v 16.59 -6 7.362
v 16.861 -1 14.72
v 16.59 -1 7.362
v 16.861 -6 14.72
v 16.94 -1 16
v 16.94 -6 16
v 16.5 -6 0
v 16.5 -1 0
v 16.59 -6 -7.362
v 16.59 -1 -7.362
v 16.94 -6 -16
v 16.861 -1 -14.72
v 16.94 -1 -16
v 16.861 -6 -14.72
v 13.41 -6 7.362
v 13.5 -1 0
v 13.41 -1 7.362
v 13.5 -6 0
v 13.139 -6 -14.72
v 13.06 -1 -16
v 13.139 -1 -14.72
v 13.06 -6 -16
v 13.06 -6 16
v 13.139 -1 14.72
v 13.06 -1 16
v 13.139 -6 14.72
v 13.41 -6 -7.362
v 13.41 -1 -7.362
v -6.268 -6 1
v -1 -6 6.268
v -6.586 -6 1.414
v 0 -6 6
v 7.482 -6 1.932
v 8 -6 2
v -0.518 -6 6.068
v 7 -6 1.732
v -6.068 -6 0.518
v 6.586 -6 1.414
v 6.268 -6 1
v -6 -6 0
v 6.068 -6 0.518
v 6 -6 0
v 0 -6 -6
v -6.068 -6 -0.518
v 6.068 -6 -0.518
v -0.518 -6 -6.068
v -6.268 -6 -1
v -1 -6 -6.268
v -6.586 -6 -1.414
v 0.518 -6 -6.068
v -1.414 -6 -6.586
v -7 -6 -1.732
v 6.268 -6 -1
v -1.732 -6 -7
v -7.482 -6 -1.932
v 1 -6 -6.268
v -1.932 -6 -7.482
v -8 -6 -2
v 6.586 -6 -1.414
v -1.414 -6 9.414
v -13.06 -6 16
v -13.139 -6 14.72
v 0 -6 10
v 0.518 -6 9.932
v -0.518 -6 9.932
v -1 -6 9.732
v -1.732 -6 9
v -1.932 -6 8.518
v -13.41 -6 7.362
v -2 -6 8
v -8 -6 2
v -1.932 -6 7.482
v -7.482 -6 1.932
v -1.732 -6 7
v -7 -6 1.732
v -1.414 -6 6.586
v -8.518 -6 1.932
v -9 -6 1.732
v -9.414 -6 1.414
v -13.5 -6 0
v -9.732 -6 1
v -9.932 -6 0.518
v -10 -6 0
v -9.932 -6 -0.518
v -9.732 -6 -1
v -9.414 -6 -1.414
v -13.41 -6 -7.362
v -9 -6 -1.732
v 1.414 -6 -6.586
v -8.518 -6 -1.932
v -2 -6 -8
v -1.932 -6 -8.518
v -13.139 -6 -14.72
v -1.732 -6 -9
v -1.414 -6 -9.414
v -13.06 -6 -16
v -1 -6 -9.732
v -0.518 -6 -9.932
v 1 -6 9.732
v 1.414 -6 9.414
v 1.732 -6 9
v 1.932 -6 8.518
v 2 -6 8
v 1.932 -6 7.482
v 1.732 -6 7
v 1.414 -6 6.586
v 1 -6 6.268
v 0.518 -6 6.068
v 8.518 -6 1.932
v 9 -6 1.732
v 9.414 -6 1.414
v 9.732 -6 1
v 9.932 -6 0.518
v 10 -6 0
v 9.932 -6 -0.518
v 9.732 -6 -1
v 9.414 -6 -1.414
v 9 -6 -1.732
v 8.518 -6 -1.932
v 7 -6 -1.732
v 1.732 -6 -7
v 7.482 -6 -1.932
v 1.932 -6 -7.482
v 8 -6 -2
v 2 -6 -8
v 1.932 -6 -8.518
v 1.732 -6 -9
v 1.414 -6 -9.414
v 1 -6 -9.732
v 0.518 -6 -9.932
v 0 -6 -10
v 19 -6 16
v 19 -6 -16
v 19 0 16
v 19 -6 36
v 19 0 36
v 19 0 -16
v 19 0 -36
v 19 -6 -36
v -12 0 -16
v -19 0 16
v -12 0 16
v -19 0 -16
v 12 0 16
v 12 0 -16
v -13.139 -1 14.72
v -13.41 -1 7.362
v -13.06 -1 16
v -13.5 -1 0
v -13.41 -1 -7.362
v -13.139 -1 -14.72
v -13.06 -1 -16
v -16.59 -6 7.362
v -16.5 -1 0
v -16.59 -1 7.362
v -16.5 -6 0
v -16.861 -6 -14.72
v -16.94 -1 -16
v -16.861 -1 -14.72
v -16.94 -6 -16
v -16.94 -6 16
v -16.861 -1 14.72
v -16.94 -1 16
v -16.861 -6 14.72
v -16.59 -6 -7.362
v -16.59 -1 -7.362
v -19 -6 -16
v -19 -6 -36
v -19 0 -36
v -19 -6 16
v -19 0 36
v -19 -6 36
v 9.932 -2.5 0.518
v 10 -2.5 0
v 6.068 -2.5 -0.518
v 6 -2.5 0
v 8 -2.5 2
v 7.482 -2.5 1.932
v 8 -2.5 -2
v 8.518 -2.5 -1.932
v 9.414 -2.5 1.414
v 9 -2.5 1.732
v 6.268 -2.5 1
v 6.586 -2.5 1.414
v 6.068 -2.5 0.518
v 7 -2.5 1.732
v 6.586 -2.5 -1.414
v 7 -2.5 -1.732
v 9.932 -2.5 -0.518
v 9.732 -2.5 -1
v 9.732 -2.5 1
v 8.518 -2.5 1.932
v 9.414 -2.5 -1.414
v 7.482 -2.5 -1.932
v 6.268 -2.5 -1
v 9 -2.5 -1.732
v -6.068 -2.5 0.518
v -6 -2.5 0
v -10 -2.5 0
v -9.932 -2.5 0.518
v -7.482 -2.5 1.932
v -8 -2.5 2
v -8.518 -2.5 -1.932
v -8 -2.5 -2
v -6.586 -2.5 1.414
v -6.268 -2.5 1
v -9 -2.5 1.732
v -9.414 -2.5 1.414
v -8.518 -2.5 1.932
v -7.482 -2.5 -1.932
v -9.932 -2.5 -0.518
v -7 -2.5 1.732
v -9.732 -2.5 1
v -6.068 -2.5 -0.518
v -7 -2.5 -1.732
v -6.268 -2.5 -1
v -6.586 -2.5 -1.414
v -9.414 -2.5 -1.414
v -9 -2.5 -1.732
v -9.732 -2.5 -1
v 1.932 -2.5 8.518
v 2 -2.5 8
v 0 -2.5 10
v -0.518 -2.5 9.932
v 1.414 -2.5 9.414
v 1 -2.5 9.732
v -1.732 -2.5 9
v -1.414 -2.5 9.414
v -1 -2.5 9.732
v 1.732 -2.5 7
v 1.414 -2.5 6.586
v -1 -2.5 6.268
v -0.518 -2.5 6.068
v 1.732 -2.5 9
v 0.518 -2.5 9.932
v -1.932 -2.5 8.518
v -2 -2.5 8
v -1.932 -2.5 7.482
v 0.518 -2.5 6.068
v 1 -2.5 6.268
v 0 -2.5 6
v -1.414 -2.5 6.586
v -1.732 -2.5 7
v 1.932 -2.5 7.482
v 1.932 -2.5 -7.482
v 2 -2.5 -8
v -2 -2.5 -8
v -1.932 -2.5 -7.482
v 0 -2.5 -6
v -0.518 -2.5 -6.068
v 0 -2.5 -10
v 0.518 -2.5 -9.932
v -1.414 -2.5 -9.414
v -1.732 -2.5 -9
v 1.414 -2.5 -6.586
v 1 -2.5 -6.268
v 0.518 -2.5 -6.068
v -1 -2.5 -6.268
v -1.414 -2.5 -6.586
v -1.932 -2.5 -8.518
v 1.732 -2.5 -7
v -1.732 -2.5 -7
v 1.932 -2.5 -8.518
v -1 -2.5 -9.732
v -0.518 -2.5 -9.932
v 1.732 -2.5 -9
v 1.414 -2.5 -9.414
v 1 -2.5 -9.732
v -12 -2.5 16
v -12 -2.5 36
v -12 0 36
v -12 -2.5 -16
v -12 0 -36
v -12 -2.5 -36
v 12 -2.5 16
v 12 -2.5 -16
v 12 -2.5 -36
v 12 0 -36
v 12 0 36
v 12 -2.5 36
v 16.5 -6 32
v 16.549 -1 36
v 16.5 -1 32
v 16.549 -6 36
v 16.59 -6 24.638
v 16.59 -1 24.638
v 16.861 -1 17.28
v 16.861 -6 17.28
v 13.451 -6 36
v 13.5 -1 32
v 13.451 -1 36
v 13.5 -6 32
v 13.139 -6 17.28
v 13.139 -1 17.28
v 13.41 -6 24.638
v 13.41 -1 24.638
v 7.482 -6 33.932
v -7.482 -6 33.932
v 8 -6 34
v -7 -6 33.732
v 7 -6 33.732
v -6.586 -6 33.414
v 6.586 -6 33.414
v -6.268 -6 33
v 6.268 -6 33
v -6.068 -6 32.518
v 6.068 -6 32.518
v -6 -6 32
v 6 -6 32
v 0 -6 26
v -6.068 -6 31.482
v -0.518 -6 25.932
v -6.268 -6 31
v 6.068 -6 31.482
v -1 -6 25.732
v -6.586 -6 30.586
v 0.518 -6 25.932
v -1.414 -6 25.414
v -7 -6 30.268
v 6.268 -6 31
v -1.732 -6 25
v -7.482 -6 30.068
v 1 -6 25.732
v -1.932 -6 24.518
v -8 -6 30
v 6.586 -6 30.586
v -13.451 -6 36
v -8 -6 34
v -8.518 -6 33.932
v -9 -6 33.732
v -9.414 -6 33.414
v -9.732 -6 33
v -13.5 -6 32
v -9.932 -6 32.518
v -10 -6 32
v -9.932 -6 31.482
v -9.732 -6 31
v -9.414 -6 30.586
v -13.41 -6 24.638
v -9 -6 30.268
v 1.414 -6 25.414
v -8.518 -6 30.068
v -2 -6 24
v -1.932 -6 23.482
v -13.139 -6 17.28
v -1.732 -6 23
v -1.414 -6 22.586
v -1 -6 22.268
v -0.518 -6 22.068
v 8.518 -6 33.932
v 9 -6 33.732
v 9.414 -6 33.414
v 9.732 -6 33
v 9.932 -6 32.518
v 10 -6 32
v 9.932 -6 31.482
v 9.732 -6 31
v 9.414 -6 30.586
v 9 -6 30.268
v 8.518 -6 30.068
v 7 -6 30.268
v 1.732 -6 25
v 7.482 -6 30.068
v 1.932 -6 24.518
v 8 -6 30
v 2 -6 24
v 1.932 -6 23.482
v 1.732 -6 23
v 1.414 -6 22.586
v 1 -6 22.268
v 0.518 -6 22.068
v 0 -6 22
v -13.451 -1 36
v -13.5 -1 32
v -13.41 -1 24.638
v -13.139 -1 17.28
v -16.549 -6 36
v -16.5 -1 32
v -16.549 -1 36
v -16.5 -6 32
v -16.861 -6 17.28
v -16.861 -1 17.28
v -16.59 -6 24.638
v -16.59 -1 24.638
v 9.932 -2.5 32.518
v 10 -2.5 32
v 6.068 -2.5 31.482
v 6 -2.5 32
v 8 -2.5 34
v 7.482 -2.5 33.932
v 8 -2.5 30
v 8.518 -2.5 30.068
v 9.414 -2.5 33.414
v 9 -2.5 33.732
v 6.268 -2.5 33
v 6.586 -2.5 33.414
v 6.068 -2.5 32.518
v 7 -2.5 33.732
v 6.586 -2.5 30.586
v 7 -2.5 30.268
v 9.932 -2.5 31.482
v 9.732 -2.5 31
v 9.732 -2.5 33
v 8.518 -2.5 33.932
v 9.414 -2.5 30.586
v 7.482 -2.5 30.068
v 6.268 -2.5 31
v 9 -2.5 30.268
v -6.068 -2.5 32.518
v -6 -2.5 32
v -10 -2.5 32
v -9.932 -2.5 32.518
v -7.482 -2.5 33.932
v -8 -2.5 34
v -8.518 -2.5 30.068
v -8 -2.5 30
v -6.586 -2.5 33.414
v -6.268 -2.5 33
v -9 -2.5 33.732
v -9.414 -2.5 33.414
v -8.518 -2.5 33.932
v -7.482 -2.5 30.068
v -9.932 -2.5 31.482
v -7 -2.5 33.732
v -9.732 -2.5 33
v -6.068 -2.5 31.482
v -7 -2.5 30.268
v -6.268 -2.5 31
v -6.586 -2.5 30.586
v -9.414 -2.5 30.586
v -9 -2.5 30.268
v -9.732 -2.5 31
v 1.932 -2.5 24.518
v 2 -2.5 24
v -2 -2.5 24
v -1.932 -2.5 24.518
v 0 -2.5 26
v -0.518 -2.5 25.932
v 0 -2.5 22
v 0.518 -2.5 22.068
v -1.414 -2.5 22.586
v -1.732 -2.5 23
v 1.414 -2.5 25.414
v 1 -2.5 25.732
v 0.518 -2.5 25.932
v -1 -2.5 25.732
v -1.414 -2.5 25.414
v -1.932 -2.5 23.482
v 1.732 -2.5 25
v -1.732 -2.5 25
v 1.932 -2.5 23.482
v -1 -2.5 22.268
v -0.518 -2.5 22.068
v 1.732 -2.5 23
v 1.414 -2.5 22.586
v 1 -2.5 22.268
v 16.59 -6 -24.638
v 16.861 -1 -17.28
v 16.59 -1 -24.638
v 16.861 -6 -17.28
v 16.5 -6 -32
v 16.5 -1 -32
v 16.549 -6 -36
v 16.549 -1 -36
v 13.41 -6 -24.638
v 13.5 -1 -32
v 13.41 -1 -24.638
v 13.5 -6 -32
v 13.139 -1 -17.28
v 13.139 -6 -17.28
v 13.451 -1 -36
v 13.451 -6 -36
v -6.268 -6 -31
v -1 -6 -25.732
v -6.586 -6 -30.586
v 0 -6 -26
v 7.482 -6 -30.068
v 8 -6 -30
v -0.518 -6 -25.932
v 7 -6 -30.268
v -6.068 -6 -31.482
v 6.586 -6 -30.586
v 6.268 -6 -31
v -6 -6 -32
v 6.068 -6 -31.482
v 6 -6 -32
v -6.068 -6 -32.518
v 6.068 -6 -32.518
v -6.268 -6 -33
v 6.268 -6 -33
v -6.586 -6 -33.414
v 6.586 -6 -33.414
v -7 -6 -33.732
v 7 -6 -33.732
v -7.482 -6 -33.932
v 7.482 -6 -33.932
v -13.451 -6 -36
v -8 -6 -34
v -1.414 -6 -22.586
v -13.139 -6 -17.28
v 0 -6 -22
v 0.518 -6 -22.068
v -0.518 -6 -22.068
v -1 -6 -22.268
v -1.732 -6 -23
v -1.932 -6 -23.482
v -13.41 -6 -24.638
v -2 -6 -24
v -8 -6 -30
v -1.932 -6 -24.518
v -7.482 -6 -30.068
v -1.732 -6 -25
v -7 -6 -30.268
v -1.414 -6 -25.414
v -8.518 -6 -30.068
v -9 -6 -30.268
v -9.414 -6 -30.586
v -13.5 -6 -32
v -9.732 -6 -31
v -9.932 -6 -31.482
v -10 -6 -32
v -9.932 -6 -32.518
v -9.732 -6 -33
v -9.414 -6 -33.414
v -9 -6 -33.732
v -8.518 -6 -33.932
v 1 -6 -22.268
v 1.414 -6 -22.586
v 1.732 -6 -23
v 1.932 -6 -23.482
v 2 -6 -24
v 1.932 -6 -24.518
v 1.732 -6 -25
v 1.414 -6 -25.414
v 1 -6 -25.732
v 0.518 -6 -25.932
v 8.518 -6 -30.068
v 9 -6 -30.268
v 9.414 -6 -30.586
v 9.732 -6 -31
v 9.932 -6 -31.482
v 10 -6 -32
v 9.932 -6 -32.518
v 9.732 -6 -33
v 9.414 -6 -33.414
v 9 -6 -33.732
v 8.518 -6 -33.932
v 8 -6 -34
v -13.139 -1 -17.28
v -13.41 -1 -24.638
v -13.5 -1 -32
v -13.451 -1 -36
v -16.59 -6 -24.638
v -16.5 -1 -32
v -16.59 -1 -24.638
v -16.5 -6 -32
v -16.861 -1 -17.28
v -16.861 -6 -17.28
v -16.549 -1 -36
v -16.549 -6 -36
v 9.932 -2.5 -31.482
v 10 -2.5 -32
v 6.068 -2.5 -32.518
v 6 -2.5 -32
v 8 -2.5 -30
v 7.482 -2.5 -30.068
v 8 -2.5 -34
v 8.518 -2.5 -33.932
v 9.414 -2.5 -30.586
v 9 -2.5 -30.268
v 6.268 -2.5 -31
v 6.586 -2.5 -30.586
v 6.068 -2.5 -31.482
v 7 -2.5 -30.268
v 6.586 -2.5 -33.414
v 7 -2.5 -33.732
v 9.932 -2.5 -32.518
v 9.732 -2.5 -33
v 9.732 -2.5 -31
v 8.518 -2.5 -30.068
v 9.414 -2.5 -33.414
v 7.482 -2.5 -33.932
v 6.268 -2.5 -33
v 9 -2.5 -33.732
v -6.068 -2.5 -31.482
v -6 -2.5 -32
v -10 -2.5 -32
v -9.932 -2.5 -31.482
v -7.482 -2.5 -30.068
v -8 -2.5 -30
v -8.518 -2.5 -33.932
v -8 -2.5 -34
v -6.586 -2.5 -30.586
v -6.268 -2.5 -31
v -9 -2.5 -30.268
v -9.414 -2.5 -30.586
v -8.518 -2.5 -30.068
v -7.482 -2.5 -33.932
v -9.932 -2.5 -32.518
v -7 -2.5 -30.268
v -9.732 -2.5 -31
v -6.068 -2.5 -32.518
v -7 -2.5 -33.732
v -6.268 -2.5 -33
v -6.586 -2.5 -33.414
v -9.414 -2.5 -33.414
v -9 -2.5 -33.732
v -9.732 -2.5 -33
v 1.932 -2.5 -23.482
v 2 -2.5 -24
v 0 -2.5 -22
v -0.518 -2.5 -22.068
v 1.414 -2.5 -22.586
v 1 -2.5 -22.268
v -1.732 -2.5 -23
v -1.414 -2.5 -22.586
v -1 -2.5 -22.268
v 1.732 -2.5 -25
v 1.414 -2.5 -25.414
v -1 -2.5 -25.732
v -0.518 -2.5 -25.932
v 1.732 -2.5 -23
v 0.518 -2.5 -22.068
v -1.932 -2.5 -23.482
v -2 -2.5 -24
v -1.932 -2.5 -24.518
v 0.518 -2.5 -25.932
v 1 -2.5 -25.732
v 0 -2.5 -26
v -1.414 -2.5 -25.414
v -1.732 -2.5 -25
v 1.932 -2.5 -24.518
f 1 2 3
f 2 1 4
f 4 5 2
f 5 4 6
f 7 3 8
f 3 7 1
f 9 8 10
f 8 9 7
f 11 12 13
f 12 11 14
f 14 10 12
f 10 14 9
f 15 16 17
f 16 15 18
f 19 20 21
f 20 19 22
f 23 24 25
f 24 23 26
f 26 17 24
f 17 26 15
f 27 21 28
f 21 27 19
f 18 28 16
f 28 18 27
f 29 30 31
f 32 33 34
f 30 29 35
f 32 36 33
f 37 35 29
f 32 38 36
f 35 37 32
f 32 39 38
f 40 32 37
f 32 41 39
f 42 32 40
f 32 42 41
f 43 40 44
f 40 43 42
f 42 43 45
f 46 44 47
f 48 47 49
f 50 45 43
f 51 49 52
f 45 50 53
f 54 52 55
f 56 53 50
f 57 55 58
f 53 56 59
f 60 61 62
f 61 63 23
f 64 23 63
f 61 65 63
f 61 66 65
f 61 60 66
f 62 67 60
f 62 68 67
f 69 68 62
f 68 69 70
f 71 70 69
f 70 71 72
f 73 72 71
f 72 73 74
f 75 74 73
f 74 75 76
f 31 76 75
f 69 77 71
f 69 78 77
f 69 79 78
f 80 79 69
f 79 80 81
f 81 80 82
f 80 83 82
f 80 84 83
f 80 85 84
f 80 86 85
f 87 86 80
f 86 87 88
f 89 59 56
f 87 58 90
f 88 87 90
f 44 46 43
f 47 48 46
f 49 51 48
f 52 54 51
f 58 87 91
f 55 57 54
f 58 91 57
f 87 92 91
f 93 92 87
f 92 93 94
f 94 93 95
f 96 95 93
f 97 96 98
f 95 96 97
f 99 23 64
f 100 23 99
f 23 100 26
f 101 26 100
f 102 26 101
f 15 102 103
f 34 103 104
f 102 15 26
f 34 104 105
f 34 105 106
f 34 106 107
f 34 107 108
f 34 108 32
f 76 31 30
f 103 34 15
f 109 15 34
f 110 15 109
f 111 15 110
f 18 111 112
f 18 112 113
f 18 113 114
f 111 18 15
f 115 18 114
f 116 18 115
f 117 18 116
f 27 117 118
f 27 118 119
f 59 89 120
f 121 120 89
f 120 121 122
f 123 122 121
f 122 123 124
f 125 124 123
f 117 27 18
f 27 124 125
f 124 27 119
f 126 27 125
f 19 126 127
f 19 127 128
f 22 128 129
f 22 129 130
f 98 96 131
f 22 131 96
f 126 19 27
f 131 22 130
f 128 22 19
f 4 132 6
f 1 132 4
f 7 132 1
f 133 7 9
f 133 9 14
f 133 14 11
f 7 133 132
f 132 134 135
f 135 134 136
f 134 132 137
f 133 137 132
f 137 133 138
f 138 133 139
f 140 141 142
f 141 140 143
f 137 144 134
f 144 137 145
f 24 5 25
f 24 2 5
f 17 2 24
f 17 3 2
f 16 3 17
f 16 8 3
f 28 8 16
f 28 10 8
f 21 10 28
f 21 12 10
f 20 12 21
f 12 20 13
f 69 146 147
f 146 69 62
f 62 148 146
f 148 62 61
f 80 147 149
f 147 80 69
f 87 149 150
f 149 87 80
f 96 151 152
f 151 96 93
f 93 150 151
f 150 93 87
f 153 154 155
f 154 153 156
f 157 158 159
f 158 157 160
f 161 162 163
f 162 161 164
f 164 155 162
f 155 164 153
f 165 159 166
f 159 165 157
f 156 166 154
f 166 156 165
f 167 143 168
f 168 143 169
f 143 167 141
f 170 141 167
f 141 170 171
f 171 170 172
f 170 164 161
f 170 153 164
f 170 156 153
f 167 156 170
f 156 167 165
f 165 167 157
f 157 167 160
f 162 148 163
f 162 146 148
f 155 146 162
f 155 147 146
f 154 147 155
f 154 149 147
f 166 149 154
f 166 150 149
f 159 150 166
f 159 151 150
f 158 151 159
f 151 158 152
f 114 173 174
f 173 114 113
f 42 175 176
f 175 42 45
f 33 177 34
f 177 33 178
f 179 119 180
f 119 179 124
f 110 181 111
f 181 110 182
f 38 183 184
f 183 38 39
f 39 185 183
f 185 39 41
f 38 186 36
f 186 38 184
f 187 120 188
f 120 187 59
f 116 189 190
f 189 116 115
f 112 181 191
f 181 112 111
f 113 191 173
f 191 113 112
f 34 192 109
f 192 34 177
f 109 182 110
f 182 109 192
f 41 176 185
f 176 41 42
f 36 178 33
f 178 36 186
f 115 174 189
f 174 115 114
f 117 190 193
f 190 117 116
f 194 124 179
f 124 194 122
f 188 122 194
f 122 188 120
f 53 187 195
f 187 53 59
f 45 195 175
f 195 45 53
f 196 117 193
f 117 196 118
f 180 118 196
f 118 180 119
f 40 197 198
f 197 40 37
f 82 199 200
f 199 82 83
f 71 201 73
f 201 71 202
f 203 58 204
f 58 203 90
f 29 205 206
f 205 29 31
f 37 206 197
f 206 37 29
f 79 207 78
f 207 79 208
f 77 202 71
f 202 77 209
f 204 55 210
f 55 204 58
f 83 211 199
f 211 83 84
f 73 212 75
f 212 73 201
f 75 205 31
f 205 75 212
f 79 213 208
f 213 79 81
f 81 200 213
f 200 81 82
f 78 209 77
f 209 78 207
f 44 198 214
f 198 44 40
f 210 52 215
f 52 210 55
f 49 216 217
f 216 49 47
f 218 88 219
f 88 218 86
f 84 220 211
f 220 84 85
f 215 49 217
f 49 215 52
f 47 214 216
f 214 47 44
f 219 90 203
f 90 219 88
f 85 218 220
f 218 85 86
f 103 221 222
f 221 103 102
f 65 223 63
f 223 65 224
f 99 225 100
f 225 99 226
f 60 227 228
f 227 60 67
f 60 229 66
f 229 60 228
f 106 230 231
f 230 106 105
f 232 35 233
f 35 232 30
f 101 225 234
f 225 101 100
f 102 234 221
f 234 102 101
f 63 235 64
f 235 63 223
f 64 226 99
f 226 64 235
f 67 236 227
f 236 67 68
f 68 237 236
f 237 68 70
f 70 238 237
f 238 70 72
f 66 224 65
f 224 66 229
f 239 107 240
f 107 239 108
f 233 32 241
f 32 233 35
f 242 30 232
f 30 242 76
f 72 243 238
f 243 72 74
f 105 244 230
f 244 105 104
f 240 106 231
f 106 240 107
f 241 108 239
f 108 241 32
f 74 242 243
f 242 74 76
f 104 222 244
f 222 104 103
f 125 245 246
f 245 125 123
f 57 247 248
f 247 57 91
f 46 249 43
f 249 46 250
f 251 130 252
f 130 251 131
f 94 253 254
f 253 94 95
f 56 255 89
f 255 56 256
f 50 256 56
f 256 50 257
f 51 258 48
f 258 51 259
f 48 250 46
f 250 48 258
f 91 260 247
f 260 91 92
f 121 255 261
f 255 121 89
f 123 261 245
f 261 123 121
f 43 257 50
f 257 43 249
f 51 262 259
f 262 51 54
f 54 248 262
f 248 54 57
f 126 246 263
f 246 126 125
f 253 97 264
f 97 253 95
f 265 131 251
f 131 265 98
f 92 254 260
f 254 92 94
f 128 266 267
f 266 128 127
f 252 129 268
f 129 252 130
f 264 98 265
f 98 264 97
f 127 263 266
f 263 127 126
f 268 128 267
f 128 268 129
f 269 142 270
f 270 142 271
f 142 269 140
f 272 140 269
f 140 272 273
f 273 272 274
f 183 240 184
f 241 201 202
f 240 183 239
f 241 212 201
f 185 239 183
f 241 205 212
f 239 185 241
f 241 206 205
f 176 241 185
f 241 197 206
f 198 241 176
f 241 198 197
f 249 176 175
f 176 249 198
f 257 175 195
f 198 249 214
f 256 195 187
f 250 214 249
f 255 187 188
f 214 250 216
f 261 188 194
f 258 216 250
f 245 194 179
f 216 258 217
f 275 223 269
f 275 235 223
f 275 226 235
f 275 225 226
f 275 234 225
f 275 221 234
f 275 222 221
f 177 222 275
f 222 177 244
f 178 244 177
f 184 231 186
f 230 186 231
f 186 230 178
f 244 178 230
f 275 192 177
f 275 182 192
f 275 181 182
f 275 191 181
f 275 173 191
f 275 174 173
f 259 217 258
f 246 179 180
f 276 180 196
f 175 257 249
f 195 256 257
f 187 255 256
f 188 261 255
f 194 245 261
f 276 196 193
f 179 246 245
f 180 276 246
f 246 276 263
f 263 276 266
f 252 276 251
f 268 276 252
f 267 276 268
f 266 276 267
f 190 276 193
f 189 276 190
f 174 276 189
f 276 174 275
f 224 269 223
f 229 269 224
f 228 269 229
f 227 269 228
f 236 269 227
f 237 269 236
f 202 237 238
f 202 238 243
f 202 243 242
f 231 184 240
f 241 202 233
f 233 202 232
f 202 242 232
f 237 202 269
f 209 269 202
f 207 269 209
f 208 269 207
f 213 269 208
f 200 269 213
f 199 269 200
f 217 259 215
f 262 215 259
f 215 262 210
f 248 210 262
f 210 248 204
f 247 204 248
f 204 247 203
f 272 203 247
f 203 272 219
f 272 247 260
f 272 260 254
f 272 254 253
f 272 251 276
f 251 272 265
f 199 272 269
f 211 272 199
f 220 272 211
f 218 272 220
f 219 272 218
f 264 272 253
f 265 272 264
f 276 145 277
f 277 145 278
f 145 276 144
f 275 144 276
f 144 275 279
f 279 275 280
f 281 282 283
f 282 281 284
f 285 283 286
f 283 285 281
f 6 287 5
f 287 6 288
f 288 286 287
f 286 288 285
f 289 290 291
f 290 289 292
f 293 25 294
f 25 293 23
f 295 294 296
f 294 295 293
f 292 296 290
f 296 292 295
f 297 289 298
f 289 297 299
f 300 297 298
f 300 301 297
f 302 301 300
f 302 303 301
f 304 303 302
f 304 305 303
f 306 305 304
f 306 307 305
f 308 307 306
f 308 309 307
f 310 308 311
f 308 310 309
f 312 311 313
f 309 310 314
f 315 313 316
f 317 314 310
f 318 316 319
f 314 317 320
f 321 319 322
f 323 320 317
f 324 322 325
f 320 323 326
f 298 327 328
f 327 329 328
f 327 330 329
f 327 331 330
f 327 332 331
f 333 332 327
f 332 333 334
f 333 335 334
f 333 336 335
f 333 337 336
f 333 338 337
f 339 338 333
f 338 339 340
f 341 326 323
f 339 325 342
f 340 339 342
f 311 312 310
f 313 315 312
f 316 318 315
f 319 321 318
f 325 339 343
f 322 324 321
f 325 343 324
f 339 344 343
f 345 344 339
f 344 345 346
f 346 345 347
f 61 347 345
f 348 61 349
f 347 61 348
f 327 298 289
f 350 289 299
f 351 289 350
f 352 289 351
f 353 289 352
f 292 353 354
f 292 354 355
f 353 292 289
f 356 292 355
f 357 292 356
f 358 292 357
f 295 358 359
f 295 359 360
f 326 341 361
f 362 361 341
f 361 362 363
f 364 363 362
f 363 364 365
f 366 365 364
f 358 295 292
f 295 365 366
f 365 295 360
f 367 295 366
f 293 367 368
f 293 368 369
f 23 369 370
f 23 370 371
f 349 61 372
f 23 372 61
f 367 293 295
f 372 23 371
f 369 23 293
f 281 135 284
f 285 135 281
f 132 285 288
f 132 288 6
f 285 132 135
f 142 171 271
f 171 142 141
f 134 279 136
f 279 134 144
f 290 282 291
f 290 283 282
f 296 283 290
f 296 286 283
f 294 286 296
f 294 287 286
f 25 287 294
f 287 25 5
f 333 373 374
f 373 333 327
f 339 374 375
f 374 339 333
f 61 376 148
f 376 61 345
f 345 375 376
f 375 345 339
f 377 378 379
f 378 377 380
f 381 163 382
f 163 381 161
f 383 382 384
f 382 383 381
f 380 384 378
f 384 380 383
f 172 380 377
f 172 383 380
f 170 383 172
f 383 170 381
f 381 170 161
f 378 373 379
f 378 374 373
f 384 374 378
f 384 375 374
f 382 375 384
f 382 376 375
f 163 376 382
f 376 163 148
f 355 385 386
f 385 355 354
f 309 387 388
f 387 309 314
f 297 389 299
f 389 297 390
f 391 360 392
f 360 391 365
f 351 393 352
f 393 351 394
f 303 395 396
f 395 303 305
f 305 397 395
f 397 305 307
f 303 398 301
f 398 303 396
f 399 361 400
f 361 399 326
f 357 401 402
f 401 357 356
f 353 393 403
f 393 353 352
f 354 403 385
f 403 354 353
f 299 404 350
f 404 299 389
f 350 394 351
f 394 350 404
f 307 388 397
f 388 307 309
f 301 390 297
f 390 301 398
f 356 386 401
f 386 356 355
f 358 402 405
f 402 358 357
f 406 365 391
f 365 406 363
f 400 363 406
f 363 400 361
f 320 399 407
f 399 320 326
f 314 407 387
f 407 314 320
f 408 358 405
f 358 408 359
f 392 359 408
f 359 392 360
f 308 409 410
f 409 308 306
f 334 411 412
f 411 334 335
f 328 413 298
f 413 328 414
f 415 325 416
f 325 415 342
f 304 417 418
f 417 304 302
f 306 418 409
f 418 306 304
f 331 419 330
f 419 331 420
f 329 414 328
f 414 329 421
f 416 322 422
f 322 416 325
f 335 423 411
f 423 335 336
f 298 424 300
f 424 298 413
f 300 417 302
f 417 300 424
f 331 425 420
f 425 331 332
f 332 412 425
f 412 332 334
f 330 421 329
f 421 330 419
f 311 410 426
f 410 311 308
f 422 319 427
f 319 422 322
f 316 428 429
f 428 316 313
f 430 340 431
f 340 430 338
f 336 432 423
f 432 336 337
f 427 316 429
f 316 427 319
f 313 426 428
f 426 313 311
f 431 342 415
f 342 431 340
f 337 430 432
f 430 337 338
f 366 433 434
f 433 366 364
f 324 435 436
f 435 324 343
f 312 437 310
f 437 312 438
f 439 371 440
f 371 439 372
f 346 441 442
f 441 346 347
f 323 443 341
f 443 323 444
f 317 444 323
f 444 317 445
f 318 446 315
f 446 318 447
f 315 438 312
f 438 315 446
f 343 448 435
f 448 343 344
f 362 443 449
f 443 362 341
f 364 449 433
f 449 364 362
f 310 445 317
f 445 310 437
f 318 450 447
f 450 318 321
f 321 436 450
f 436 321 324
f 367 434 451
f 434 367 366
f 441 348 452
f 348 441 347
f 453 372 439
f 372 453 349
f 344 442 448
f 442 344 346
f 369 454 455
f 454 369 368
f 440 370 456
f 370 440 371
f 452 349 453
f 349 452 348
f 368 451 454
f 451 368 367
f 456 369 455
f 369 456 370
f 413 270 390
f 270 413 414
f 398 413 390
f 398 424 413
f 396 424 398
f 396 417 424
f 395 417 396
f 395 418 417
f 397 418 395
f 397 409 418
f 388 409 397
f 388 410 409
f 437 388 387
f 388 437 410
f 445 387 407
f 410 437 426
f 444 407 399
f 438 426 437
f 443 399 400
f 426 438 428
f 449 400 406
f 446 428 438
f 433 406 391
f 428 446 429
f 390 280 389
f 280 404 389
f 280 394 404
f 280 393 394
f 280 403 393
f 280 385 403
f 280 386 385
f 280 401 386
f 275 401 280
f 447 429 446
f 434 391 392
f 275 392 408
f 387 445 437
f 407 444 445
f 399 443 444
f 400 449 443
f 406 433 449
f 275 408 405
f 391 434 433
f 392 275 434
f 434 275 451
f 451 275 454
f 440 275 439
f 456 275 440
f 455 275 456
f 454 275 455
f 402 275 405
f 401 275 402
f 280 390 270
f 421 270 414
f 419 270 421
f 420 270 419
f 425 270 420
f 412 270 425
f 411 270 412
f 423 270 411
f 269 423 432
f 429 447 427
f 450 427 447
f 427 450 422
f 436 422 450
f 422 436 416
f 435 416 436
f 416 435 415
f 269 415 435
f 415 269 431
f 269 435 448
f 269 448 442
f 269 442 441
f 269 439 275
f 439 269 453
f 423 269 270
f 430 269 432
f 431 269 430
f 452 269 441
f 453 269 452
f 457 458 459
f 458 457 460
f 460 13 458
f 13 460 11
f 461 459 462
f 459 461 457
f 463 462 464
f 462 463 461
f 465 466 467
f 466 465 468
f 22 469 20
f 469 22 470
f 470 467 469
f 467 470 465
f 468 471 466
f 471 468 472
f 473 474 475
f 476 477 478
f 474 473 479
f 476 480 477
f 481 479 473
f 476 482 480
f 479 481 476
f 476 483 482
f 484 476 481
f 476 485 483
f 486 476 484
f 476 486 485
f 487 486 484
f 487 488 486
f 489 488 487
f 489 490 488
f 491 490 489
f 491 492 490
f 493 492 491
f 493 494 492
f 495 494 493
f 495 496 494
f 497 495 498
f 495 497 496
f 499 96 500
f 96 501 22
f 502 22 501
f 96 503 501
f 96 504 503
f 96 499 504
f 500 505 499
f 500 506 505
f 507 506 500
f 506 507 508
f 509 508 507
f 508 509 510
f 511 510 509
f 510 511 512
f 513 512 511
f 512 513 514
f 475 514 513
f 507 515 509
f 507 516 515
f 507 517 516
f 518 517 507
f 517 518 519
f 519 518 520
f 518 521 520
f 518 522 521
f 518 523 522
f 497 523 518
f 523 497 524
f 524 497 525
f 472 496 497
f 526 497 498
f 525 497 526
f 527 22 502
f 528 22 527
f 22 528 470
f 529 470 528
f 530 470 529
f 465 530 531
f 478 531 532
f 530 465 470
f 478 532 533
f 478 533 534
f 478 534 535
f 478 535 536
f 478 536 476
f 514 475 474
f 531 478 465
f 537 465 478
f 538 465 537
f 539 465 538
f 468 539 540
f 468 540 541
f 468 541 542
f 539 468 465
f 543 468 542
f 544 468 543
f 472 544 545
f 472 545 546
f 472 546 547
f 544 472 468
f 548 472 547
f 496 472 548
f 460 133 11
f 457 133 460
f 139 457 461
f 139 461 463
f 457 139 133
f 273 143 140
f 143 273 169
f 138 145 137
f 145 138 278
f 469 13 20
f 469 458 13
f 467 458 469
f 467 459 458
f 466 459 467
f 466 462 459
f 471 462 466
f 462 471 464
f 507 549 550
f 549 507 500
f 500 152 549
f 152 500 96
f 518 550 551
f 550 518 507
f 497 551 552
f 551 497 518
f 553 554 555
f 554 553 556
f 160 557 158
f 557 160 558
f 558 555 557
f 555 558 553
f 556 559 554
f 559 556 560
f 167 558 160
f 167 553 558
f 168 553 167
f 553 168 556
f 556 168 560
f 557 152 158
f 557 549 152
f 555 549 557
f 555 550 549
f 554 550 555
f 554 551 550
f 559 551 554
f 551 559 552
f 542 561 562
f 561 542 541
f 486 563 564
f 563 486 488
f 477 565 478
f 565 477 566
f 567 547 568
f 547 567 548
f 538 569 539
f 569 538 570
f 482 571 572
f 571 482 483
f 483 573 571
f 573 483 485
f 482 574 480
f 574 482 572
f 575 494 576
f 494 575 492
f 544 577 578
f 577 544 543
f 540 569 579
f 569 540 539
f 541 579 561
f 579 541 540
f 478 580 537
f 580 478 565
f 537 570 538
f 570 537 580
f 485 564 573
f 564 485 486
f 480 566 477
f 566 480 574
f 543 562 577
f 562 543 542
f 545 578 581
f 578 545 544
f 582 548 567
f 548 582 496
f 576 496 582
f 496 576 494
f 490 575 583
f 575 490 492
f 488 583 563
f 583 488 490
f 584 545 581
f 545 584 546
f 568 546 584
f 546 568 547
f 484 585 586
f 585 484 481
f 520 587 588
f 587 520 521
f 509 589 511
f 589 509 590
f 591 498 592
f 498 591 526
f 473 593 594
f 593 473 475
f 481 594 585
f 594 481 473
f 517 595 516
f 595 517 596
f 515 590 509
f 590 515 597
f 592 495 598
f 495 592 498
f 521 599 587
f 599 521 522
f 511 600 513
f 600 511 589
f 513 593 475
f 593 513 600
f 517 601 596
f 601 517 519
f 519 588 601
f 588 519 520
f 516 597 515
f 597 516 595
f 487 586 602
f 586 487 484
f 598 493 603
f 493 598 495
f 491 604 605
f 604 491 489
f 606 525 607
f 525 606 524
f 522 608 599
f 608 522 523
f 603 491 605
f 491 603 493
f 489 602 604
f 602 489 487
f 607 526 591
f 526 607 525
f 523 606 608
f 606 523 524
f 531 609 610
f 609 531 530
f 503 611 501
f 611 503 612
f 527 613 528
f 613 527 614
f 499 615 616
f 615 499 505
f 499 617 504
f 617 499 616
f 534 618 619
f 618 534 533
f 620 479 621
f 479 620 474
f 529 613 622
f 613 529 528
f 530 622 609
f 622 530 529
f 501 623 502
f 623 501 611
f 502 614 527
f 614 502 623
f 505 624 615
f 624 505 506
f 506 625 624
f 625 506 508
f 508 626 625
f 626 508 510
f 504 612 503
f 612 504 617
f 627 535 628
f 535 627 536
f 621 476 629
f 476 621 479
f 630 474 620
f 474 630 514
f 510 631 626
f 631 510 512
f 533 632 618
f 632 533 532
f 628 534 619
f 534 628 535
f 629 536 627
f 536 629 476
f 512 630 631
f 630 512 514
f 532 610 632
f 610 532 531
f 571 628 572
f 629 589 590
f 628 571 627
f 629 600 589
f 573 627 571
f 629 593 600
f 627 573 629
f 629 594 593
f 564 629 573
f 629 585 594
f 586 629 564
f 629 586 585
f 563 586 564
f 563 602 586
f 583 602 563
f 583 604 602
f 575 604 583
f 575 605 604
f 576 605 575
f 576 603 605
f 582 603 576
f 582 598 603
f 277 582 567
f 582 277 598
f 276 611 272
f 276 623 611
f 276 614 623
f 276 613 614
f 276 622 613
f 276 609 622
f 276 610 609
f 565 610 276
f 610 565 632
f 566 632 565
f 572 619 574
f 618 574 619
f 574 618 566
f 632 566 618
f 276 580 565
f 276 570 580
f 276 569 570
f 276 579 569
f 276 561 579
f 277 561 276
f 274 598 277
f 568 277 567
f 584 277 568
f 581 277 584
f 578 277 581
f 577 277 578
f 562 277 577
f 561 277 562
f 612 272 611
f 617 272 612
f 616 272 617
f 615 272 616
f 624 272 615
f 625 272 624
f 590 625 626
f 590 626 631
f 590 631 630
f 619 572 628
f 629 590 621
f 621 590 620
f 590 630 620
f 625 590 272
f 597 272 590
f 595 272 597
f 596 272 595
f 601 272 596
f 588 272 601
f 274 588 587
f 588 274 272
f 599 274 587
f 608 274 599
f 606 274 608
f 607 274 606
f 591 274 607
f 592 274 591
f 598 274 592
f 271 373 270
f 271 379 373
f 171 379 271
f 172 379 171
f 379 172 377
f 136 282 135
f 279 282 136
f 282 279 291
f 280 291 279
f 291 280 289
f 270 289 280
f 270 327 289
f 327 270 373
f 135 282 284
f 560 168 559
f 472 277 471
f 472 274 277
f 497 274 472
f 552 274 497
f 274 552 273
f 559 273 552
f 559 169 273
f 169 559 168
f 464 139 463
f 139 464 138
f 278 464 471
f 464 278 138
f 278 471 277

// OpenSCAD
sliderWidth = 30;
sliderHeight = 32;
sliderDepth = 6;

tabWidth = 8;
tabGapWidth = 3;
tabRadius = 300.0;
tabDepth = 5;

lowerWidth = 24;
lowerDepth = 2.5;

upperWidth=24;
upperDepth=1;


holeOffset = 8;
holeRadius = 2;

bigHoleDepth = 1.5;
bigHoleRadius = 4.75;

tabFacets = 256;
holeFacets = 24;
blockFacets = 32;

//BigHoles();
intersection() {
    union() {
    Slider();
    translate([0,0,32])
        Slider();
    translate([0,0,-32])
        Slider();
    }
    cube([100,100,72],center=true);
}

//translate([0,sliderHeight*1.25,0])
//    Slider();


module Slider()
{
    rotate([90,0,0])
    difference()
    {
        union() {
            translate([sliderWidth/2,0,0])
                Tab();
            translate([-sliderWidth/2,0,0])
                Tab();
            translate([0,0,sliderDepth/2])
                cube([sliderWidth-tabWidth,sliderHeight,sliderDepth],
                     center=true);

        }
        Holes();

        
  /*      translate([0,0,sliderDepth])
            RoundedBlock(upperWidth, 2*sliderHeight, 2*upperDepth);*/
        translate([0,0,0])
            RoundedBlock(lowerWidth, 2*sliderHeight, 2*lowerDepth);
    }
}

module Tab() {
    union() {
        translate([0,0,sliderDepth/2])
            intersection() {
                cube([tabWidth,sliderHeight,sliderDepth],
                     center = true);
                union() {
                    translate([tabRadius + tabGapWidth/2,0,0])
                        cylinder(h = sliderDepth*2, r = tabRadius, 
                                 center=true, $fn=tabFacets);
                    translate([-(tabRadius + tabGapWidth/2),0,0])
                        cylinder(h = sliderDepth*2, r = tabRadius, 
                                 center=true, $fn=tabFacets);

               }
           }
        translate([0,0,(sliderDepth-tabDepth)/2])
           cube([tabWidth,sliderHeight,(sliderDepth-tabDepth)], center=true);
   }
}

module Holes() {
    translate([holeOffset,0,0])
        cylinder(r=holeRadius,h=3*sliderDepth, center=true, $fn=holeFacets);
    translate([-holeOffset,0,0])
        cylinder(r=holeRadius,h=3*sliderDepth, center=true, $fn=holeFacets);
    translate([0,holeOffset,0])
        cylinder(r=holeRadius,h=3*sliderDepth, center=true, $fn=holeFacets);
    translate([0,-holeOffset,0])
        cylinder(r=holeRadius,h=3*sliderDepth, center=true, $fn=holeFacets);
}

module BigHoles() {/*
    rotate([0,180])
    translate([holeOffset,0,0])
        linear_extrude(height = 2*bigHoleDepth, center=true, scale=1.5)
        circle(r=bigHoleRadius,$fn=6);
    
    rotate([0,180])
    translate([-holeOffset,0,0])
        linear_extrude(height = 2*bigHoleDepth, center=true, scale=1.5)
        circle(r=bigHoleRadius,$fn=6);
    
    rotate([0,180])
    translate([0,holeOffset,0])
        linear_extrude(height = 2*bigHoleDepth, center=true, scale=1.5)
        circle(r=bigHoleRadius,$fn=6);
    
    rotate([0,180])
    translate([0,-holeOffset,0])
        linear_extrude(height = 2*bigHoleDepth, center=true, scale=1.5)
        circle(r=bigHoleRadius,$fn=6);
    */
    translate([holeOffset,0,0]) 
        rotate([0,0,30])   
            cylinder(r=bigHoleRadius,h=2*bigHoleDepth,
                     center=true, $fn=6);
    translate([-holeOffset,0,0])
        rotate([0,0,30])
            cylinder(r=bigHoleRadius,h=2*bigHoleDepth,
                     center=true, $fn=6);
    translate([0,holeOffset,0])
        rotate([0,0,30])
            cylinder(r=bigHoleRadius,h=2*bigHoleDepth,
                     center=true, $fn=6);
    translate([0,-holeOffset,0])
        rotate([0,0,30])
            cylinder(r=bigHoleRadius,h=2*bigHoleDepth,
                     center=true, $fn=6);
}

module RoundedBlock(width, length, height, radius)
{
    cube([width, length, height], center=true);
}
